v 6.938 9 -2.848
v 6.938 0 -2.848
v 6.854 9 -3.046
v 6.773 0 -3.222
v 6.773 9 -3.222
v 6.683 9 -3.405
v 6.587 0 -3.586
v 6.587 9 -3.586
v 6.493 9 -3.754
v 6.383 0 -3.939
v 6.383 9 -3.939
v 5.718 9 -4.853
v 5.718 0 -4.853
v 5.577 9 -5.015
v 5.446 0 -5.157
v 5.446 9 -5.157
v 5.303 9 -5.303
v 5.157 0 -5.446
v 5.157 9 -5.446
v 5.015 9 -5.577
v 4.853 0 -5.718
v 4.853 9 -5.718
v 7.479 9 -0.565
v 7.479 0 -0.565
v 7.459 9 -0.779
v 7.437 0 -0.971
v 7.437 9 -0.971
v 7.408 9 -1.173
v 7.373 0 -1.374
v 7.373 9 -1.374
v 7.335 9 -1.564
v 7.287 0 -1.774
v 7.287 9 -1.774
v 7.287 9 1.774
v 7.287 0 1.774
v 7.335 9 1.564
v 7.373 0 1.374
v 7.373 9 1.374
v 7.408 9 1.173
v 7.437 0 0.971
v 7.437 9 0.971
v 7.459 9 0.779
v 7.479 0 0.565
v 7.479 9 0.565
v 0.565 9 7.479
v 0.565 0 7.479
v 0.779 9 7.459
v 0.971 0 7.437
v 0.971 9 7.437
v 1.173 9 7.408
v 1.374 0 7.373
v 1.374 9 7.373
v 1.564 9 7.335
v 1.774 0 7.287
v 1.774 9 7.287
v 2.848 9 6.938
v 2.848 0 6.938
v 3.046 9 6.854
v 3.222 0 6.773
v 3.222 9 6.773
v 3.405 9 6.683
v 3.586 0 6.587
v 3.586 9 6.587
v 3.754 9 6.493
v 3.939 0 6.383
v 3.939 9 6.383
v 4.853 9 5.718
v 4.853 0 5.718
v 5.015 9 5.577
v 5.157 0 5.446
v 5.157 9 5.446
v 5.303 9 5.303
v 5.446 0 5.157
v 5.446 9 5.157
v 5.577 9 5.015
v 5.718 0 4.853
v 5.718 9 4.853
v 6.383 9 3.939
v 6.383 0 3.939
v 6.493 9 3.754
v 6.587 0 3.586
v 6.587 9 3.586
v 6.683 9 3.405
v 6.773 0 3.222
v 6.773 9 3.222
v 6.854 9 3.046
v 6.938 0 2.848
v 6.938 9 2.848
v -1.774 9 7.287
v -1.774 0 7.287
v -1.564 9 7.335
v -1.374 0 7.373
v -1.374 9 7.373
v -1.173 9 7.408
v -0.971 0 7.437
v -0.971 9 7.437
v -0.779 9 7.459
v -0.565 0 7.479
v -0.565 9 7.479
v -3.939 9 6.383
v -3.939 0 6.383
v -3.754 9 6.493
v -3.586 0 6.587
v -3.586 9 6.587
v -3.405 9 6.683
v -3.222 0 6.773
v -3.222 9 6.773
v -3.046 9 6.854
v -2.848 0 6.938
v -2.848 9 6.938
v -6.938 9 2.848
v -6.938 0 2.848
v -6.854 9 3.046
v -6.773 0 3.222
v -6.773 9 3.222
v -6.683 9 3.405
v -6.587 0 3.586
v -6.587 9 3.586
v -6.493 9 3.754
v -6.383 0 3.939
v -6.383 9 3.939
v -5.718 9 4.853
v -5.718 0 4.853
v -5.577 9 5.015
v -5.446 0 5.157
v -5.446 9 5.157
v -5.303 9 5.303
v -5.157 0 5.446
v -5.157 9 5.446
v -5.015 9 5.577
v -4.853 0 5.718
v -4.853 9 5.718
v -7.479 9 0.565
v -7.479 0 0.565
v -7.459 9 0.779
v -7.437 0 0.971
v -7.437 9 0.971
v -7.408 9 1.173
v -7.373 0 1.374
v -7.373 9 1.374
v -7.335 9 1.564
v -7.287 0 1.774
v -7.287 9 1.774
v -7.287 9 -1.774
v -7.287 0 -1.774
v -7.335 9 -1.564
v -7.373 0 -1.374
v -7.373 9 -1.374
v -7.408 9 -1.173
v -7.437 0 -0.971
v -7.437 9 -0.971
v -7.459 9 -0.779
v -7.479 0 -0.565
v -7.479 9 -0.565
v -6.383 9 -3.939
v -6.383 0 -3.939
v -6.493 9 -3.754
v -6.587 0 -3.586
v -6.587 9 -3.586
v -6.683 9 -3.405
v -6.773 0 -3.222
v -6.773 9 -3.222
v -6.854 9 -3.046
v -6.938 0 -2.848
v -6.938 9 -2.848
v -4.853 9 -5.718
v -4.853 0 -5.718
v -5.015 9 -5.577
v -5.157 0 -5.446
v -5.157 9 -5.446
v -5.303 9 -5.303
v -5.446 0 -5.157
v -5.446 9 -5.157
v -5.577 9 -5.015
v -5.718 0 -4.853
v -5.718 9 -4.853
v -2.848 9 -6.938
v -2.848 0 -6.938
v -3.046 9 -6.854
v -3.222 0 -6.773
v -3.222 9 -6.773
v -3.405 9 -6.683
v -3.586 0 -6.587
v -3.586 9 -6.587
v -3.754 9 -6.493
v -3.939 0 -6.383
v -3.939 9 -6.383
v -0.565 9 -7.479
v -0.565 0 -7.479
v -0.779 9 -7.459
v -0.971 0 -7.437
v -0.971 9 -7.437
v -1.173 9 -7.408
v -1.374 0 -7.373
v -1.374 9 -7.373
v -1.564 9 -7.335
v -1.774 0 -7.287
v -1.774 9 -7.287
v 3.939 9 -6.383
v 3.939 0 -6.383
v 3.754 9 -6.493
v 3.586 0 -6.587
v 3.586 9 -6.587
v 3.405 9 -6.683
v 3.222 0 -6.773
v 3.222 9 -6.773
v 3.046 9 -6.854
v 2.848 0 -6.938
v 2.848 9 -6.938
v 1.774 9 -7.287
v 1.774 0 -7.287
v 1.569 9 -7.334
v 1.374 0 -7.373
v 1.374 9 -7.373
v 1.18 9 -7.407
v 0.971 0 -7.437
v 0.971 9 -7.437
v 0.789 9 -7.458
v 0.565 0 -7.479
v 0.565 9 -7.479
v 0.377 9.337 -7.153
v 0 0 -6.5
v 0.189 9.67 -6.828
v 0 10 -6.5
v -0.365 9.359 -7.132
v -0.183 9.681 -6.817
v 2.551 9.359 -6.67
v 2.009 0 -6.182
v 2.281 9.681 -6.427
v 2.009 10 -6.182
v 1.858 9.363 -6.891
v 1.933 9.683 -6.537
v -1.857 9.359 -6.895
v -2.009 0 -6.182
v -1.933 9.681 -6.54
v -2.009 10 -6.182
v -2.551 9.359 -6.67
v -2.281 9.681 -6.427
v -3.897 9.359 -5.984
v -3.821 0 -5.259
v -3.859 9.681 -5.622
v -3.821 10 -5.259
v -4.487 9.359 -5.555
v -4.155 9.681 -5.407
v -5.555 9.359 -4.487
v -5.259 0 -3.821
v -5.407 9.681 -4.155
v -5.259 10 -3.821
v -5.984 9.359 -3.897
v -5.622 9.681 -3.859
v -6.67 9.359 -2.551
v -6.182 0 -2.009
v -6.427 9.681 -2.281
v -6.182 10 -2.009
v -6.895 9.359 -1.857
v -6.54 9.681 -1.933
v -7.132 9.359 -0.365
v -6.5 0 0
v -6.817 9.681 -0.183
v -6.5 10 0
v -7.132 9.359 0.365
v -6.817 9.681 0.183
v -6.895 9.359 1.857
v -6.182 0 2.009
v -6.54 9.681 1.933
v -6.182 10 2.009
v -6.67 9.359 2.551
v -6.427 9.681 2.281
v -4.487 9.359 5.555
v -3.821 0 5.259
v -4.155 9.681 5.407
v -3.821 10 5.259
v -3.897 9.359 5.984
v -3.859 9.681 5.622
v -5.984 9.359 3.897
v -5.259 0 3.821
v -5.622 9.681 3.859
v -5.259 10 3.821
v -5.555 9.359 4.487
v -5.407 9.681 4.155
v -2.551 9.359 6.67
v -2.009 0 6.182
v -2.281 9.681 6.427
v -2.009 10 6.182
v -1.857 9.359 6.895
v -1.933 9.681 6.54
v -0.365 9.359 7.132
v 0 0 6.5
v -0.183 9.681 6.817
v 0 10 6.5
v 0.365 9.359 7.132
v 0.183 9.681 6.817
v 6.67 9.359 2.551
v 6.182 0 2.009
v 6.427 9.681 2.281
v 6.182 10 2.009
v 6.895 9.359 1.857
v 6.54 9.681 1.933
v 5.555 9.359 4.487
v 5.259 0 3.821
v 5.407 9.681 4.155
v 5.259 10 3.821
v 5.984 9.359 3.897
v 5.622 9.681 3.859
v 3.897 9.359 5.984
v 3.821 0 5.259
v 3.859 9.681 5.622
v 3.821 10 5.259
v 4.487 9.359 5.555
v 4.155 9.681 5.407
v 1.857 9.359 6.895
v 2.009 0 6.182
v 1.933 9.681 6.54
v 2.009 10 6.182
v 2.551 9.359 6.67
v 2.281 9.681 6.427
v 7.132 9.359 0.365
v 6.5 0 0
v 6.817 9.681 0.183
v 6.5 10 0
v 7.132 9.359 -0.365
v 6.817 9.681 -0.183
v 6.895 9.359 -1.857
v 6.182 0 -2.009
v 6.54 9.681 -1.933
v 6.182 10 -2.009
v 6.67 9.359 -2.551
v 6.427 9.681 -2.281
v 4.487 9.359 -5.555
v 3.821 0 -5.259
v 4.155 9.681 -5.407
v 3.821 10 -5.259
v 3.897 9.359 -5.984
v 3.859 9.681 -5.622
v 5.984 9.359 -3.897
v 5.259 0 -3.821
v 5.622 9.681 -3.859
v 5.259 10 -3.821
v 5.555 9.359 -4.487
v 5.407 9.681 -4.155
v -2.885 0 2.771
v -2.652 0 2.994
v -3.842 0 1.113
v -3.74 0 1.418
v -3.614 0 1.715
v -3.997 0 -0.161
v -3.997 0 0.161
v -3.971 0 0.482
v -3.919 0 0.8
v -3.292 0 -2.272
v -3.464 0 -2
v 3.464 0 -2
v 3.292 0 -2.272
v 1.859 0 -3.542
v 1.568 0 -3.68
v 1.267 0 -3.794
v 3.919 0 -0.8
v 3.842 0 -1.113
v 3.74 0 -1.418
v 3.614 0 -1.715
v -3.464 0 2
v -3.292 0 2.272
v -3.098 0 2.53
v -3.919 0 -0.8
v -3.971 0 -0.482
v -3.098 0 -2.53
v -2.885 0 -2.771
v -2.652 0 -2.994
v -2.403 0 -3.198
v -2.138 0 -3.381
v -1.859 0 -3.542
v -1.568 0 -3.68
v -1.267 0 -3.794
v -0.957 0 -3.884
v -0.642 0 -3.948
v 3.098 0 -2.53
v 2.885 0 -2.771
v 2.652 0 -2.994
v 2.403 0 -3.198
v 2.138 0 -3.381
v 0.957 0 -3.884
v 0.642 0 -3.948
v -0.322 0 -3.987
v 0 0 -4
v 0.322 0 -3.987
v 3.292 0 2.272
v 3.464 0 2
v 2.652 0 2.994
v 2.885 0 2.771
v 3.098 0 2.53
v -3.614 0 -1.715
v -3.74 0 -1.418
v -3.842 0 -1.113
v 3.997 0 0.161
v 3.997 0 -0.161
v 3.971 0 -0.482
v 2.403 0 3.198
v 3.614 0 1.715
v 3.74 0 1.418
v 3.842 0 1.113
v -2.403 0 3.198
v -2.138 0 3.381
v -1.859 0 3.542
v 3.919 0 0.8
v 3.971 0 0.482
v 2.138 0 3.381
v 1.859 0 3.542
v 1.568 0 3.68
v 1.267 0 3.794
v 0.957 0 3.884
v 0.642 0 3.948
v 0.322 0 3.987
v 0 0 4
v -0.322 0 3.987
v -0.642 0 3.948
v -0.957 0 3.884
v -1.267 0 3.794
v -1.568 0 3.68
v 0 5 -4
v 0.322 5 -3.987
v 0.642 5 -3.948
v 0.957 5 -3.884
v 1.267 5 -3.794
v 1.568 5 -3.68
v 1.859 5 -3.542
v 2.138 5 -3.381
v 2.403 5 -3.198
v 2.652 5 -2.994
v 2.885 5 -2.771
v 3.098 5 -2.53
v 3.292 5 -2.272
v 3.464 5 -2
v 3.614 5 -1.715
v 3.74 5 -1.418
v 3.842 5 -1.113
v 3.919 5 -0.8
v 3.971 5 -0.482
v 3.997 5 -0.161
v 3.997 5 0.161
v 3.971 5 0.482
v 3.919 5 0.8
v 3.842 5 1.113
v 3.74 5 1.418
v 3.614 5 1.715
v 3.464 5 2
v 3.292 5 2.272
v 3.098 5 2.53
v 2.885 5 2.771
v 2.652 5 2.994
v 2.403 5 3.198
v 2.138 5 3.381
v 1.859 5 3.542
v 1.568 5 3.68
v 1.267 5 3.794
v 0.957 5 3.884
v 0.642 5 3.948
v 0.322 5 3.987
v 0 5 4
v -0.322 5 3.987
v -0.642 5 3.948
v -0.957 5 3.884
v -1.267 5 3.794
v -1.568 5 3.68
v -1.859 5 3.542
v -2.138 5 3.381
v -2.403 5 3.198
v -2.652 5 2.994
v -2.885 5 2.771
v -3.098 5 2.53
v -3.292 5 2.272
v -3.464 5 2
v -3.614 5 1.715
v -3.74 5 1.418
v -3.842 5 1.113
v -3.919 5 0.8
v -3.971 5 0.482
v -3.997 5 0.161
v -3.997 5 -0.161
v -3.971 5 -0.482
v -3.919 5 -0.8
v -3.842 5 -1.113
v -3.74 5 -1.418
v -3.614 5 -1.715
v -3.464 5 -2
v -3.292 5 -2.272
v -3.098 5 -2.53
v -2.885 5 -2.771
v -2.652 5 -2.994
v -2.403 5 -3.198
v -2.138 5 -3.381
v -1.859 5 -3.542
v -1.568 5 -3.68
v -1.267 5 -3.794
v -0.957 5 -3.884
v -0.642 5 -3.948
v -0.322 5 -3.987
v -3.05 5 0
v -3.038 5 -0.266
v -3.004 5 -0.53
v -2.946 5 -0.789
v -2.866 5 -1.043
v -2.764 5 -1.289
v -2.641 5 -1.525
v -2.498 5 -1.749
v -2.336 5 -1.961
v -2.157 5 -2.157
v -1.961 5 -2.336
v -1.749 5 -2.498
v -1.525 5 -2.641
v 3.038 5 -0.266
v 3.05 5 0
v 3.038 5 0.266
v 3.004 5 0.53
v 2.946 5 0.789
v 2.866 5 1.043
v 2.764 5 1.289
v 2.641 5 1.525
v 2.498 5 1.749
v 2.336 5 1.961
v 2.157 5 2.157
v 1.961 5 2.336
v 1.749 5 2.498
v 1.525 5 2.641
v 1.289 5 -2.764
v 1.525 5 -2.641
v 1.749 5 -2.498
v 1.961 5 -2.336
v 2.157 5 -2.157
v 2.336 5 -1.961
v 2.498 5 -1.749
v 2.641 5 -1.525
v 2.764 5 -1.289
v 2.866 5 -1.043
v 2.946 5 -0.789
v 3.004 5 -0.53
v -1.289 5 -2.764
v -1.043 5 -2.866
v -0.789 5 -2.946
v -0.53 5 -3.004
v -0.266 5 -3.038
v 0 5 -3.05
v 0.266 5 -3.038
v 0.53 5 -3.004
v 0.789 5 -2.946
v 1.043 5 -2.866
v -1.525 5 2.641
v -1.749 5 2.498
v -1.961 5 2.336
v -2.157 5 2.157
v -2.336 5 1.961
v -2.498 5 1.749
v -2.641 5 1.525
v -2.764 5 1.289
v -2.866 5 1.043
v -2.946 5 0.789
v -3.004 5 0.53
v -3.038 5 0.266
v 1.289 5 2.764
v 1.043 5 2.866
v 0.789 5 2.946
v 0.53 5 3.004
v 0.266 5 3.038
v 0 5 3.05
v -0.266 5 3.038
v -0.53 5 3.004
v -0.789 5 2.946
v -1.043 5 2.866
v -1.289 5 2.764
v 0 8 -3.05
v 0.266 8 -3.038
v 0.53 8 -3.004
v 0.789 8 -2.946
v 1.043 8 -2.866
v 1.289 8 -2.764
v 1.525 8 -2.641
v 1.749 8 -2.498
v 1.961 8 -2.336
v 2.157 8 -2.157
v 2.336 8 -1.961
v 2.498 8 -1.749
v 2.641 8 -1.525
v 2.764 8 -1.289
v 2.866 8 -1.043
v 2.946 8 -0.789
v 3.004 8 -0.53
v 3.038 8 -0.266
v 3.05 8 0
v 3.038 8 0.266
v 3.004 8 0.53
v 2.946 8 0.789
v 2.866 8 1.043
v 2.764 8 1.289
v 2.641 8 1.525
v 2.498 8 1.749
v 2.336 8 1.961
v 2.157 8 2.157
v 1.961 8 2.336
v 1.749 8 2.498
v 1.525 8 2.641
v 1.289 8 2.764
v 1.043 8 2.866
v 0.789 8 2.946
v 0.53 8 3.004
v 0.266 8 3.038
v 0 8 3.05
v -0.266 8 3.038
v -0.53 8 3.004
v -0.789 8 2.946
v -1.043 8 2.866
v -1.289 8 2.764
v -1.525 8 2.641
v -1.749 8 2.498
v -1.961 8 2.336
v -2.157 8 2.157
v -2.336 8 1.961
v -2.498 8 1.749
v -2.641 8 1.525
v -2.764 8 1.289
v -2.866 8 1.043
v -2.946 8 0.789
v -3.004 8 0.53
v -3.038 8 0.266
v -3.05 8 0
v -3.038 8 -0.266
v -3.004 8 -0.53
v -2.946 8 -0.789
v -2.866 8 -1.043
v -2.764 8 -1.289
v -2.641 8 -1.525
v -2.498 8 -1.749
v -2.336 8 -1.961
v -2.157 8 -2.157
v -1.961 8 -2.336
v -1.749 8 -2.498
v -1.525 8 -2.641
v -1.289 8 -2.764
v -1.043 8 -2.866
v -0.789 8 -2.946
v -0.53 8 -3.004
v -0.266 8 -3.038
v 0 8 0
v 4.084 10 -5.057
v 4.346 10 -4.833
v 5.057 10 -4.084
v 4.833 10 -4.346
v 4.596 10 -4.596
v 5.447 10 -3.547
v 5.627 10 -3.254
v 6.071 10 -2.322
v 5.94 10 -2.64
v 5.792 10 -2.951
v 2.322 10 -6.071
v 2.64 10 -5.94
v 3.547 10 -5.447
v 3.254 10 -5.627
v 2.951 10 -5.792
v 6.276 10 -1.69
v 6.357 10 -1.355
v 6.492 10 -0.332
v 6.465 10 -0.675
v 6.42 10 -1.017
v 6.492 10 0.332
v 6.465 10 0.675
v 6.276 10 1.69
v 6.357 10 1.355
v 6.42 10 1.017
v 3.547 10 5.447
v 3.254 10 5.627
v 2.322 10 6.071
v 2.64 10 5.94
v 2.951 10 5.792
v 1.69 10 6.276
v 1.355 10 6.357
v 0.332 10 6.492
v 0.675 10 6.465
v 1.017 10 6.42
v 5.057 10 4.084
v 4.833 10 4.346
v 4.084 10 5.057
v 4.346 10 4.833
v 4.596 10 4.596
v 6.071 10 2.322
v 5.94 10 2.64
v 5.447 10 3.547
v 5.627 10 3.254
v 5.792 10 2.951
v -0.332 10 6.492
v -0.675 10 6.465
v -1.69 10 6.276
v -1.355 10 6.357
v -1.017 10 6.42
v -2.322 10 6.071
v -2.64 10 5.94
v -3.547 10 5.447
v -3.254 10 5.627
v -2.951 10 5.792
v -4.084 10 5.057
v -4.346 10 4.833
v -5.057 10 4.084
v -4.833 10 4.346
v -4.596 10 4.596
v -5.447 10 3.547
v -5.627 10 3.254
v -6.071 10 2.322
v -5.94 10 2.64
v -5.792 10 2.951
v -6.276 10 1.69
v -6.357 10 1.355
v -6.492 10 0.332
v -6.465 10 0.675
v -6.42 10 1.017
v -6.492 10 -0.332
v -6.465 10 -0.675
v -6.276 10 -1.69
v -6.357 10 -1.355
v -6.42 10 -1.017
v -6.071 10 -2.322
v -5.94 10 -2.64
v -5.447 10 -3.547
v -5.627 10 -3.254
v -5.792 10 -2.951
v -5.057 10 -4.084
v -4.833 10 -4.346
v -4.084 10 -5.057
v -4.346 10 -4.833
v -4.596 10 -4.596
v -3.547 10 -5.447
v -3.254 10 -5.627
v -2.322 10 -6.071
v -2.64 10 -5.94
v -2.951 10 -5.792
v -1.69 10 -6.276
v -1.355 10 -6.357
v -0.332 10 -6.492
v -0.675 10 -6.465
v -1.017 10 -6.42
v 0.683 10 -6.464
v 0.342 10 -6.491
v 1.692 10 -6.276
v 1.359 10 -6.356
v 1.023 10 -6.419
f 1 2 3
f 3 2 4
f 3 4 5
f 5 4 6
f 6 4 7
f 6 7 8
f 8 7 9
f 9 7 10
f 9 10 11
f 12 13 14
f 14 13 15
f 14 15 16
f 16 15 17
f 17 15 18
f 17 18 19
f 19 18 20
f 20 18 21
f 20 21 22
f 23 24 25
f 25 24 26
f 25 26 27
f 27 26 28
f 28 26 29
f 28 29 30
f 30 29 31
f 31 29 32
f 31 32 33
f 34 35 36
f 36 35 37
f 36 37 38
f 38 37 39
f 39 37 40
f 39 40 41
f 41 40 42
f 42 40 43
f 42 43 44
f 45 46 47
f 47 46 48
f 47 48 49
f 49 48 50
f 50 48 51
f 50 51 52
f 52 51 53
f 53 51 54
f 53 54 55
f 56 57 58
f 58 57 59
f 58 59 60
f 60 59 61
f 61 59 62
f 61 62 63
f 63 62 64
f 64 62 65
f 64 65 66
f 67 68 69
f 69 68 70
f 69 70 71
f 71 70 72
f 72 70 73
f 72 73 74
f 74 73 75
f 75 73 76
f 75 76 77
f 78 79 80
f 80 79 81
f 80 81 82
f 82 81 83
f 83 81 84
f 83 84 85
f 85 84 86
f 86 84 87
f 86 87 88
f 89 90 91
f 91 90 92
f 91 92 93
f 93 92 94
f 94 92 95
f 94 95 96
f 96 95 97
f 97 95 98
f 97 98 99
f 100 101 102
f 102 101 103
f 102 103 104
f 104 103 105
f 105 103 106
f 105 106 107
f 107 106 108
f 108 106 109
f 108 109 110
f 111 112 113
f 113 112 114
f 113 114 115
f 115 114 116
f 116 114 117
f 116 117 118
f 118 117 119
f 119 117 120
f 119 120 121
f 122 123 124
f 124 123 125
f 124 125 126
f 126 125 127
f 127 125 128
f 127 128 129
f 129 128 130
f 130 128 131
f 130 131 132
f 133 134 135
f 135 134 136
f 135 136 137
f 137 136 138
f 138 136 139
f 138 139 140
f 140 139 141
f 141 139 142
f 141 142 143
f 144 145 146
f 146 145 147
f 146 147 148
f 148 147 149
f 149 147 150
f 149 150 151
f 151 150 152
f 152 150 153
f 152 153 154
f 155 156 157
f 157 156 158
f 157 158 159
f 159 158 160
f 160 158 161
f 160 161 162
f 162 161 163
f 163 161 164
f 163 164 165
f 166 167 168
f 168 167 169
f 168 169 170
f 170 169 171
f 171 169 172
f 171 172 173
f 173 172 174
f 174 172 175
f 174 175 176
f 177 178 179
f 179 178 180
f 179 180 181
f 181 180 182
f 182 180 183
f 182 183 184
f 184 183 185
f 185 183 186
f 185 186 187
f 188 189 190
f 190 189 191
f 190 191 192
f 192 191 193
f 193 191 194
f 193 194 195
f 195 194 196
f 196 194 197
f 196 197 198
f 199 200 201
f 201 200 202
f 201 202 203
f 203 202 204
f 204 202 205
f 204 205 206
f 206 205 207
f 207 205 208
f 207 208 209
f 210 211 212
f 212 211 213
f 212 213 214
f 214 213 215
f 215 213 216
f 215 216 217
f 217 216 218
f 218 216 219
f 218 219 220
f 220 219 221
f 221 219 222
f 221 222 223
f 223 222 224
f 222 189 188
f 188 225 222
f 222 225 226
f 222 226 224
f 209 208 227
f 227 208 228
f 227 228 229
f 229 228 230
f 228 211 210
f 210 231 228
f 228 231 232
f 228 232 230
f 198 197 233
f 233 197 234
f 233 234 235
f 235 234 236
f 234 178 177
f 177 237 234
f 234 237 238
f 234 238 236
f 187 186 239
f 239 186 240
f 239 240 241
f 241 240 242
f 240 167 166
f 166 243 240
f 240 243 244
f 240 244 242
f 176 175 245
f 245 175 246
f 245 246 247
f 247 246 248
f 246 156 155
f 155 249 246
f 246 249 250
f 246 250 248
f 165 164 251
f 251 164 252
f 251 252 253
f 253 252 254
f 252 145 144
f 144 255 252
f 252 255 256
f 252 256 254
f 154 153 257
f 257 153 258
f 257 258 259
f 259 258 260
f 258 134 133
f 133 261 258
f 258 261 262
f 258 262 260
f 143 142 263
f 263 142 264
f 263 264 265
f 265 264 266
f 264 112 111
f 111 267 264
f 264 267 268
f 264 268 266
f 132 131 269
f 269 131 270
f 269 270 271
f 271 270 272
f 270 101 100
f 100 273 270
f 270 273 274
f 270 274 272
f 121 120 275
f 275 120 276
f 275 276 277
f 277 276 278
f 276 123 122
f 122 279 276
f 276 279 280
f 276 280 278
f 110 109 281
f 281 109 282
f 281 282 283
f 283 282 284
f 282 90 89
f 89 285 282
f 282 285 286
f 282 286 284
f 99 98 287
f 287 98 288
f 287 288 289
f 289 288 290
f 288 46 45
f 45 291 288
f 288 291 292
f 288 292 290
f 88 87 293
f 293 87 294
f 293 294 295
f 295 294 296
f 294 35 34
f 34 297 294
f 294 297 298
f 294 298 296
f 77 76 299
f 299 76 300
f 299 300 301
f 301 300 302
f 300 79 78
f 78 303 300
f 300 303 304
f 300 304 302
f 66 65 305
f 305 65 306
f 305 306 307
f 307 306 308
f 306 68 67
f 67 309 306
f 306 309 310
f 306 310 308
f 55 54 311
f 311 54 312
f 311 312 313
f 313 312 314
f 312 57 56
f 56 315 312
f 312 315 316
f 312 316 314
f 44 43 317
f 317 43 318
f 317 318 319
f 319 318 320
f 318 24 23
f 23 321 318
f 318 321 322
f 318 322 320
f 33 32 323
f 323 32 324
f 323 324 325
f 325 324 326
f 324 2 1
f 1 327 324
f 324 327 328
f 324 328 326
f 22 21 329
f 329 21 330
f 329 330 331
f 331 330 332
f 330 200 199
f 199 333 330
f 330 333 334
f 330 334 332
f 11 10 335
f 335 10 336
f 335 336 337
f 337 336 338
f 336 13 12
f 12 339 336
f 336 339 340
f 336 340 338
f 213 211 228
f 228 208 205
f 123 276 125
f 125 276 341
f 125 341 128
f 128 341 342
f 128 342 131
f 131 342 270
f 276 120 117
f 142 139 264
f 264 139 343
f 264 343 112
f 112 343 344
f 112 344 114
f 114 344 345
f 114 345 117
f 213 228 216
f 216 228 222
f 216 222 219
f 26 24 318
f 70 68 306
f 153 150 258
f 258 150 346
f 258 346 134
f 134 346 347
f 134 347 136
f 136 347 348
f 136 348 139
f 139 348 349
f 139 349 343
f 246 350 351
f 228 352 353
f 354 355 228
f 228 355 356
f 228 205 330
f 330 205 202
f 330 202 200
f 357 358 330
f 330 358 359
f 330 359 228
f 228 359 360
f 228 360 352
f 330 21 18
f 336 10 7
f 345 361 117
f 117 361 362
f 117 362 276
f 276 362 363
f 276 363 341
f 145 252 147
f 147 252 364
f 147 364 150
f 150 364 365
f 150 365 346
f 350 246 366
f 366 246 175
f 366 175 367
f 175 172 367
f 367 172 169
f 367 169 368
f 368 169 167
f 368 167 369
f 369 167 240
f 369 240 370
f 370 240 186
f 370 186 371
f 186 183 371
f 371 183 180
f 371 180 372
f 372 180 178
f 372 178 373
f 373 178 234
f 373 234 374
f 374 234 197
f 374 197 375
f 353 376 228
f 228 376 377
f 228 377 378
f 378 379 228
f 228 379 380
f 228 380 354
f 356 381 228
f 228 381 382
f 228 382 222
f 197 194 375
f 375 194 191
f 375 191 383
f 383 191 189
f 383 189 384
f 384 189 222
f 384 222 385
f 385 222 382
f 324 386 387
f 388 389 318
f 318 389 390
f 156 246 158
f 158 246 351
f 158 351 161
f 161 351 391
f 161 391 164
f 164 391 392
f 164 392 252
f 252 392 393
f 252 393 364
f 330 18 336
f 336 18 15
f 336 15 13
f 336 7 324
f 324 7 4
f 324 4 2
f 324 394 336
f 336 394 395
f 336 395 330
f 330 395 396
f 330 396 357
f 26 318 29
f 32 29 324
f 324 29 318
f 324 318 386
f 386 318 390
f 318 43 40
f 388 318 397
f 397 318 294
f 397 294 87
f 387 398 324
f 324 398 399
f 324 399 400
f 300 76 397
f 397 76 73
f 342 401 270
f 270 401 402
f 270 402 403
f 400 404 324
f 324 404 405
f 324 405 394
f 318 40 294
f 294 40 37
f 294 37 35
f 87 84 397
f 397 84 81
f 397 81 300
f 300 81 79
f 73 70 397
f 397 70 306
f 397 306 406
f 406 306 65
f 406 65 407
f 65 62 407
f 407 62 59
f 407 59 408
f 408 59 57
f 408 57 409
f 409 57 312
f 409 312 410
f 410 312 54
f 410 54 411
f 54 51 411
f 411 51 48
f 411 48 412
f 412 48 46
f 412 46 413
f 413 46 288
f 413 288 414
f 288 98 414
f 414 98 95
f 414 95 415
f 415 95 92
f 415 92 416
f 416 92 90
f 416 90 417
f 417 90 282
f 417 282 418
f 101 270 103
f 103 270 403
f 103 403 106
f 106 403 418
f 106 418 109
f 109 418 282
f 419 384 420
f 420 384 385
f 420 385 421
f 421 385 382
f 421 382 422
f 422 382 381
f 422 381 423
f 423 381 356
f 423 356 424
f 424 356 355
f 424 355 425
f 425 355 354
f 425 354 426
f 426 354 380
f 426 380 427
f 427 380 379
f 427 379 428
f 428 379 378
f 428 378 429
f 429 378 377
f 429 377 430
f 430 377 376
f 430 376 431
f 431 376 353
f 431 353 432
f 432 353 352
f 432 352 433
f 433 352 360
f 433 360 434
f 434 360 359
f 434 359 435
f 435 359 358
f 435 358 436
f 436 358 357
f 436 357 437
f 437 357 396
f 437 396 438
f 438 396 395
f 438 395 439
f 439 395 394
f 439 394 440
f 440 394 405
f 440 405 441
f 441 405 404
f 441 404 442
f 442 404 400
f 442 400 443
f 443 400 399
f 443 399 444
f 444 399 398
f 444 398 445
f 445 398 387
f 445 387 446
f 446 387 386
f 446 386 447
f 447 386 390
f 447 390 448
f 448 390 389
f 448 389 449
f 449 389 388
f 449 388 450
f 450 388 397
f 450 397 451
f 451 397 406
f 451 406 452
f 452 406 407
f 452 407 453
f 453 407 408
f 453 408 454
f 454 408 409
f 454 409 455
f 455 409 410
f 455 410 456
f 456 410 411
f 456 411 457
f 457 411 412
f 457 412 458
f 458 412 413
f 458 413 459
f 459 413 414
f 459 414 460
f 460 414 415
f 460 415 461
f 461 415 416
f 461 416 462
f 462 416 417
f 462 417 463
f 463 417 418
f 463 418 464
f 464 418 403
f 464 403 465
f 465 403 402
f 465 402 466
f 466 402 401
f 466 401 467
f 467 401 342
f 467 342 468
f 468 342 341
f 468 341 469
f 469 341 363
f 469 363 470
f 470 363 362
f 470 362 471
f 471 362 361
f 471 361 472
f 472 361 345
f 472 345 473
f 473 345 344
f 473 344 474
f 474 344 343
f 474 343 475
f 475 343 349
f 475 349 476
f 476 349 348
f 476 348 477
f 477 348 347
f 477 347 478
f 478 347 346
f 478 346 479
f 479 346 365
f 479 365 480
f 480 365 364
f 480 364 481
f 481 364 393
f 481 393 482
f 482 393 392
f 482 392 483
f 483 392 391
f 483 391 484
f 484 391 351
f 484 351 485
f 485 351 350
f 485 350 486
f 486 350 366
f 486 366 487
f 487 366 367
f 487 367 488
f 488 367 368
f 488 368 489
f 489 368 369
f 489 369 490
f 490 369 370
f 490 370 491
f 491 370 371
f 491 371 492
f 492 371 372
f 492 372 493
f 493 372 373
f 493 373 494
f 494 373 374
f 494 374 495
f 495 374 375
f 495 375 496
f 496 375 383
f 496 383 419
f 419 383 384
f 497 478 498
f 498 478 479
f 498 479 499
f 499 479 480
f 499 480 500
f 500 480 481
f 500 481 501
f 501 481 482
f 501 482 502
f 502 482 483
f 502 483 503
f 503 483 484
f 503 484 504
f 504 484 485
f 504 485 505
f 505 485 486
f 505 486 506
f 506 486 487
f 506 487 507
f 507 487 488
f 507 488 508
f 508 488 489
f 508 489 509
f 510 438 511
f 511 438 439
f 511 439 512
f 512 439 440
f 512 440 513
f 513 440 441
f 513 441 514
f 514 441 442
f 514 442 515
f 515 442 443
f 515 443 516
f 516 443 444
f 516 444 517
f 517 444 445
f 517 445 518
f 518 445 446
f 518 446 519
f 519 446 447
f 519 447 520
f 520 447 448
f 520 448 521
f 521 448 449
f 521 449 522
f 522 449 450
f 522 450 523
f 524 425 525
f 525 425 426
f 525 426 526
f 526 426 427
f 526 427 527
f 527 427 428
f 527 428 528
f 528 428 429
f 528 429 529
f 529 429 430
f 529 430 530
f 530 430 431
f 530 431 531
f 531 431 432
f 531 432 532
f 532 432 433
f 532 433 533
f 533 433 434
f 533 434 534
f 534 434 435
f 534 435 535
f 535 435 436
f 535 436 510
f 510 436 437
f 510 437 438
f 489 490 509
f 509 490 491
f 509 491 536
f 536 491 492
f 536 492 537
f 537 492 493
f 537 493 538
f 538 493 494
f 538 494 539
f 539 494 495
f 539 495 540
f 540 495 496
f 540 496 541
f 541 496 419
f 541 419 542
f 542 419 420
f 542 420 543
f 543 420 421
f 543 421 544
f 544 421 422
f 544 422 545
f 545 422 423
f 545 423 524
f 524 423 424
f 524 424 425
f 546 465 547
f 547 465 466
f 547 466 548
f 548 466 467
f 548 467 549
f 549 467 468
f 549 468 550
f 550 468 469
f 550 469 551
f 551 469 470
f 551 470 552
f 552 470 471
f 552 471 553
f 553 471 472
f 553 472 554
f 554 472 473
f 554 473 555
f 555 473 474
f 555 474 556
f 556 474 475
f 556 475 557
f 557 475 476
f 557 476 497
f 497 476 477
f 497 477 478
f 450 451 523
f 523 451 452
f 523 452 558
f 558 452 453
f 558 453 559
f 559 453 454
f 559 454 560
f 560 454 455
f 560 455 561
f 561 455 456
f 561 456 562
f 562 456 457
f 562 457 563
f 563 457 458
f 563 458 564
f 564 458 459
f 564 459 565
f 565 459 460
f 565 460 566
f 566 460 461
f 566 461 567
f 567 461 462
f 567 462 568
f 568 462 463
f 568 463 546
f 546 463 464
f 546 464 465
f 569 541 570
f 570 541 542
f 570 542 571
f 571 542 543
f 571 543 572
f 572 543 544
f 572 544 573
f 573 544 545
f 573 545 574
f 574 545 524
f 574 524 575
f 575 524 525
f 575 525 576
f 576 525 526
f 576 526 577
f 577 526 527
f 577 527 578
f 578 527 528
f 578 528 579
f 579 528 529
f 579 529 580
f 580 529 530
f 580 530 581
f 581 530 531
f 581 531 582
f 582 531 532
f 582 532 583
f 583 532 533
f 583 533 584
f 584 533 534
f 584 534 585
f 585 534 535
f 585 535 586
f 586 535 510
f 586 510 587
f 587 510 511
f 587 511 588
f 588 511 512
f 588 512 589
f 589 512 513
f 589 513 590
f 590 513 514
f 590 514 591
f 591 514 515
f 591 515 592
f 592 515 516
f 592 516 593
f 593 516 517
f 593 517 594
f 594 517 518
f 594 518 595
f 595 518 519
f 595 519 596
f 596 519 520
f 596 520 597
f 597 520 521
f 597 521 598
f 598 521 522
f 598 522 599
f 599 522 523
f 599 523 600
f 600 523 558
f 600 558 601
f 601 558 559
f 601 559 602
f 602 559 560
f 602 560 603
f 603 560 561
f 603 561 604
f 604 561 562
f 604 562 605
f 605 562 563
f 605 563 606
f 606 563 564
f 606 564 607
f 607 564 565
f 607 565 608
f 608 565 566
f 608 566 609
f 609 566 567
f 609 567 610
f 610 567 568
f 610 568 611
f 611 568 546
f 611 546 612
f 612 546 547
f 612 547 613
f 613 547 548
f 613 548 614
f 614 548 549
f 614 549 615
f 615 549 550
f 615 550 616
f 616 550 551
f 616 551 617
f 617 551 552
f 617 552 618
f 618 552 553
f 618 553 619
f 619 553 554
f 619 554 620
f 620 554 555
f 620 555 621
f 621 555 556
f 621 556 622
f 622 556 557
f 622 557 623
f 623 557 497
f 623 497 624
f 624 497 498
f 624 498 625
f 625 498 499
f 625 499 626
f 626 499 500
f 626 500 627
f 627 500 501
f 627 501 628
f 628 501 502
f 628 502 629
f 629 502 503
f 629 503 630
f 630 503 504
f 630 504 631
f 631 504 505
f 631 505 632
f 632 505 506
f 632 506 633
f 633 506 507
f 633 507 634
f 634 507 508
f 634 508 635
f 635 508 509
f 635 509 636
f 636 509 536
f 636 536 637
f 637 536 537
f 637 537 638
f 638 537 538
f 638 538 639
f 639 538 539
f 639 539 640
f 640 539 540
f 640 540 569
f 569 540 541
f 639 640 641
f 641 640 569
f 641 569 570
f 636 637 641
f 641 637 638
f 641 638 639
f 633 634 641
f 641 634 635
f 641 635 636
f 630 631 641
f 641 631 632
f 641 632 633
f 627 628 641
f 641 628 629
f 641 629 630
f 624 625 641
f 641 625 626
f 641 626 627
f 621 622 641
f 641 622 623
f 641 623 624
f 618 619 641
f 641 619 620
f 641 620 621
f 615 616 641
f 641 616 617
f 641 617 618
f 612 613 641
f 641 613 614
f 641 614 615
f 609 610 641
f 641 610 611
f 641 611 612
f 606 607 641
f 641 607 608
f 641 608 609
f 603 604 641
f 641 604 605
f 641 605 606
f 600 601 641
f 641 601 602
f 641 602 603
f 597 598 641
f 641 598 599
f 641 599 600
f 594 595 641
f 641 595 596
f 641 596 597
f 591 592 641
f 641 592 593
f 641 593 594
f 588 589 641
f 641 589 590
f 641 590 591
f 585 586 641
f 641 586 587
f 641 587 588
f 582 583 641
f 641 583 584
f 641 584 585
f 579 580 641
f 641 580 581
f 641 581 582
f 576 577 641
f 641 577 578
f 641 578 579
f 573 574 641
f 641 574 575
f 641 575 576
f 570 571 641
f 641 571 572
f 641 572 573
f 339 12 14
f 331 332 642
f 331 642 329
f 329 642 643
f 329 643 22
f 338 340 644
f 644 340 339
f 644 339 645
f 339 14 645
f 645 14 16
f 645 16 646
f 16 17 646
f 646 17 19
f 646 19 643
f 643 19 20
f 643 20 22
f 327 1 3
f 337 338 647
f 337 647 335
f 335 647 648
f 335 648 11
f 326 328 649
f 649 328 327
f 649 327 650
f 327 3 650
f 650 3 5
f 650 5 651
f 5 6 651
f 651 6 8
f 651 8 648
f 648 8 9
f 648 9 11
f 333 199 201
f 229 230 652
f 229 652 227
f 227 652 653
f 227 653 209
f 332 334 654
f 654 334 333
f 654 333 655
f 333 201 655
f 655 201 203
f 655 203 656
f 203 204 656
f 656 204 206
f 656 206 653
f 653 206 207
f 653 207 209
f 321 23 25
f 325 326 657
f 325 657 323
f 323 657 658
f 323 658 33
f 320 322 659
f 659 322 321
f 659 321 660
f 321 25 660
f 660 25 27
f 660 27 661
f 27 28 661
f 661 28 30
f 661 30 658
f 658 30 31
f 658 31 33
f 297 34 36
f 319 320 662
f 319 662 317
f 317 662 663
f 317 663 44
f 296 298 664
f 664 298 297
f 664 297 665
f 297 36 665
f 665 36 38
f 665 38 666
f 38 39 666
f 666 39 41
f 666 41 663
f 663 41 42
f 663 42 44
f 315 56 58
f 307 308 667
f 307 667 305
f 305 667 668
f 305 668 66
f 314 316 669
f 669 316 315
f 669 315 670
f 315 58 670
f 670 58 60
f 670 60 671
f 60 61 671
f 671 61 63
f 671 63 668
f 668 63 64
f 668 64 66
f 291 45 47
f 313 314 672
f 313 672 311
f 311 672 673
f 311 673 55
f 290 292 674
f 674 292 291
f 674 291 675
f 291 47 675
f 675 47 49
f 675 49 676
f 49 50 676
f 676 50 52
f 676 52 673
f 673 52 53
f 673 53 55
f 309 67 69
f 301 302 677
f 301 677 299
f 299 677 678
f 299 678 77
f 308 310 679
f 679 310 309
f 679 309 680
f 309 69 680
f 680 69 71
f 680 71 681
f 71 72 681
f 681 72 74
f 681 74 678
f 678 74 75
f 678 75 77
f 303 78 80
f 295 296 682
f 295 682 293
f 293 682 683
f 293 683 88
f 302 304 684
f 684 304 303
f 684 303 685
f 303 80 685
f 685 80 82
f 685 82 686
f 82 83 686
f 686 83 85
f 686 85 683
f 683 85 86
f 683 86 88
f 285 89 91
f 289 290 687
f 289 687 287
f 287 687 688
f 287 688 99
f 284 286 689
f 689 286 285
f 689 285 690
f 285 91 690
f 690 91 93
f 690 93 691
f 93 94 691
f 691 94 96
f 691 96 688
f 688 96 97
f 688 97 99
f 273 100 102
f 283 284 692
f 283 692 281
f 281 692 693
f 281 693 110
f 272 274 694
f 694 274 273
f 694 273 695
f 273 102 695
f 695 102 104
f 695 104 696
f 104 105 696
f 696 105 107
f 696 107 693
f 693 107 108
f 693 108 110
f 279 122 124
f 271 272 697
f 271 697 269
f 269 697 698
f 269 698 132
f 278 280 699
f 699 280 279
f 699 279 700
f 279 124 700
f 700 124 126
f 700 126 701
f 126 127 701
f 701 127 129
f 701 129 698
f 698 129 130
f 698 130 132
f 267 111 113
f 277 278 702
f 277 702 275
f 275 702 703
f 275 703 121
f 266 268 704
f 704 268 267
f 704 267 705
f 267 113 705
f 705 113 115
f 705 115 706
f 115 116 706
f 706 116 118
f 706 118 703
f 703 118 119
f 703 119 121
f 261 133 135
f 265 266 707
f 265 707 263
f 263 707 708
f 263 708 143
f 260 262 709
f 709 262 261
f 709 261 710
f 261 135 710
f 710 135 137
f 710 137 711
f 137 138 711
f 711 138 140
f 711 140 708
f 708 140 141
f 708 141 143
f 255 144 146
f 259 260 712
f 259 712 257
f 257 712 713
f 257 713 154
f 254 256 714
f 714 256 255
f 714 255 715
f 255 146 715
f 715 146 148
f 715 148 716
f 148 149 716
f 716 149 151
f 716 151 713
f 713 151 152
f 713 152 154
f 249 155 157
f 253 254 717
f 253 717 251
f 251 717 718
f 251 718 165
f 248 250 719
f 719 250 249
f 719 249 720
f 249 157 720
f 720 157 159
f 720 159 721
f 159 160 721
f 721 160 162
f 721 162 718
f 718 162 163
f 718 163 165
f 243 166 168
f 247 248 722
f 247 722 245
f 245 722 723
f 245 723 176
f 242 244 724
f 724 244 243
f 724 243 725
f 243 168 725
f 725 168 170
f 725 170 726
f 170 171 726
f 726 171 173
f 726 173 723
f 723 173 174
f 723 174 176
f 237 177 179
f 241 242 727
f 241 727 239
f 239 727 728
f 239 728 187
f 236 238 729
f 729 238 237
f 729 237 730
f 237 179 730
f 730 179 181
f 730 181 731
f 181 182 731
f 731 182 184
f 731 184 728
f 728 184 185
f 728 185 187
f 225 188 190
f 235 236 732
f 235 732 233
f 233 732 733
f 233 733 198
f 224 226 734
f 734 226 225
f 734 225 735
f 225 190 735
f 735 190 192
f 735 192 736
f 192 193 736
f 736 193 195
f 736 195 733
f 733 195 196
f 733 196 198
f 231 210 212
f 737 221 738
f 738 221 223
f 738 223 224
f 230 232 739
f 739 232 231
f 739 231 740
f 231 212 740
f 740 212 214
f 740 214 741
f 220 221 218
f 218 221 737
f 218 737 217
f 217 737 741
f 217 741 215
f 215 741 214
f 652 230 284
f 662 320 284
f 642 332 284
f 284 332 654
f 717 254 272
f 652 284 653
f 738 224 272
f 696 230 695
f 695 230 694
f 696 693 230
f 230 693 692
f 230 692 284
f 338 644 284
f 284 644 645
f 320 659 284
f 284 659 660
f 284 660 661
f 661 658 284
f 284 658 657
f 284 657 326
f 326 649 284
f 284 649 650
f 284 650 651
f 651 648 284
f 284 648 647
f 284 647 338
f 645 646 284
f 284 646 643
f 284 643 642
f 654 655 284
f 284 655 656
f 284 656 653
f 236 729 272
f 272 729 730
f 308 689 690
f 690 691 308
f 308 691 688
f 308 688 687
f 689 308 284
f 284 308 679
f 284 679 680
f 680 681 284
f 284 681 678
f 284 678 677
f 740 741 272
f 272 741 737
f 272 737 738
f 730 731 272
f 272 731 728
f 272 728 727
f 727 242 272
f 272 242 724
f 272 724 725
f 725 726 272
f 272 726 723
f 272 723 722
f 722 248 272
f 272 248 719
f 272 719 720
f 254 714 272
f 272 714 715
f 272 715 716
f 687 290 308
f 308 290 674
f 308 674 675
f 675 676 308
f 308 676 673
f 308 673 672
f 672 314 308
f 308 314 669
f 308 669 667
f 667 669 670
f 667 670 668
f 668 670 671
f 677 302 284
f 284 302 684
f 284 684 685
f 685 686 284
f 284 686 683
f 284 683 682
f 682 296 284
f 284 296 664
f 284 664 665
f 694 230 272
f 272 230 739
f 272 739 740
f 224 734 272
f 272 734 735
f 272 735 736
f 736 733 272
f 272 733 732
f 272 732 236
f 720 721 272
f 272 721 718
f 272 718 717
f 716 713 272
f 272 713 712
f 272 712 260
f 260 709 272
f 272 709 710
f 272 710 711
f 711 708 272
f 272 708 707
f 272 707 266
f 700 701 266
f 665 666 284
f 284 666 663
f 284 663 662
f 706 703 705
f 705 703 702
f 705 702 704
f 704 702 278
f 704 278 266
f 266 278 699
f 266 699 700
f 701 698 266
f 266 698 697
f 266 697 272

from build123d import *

# Parameters (mm, degrees)
CUT_EXTRUDE1_DEPTH = 10
CIRPATTERN1_COUNT  = 20


with BuildPart() as part:
    # Sketch1 → Revolve1 (revolve)
    with BuildSketch(Plane.XY, mode=Mode.PRIVATE) as revolve1_sk:
        Polygon((0, 8), (0, 10), (7.5, 10), (7.5, 0), (4, 0), (4, 5), (3.05, 5), (3.05, 8), align=None)
    revolve(revolve1_sk.sketch.rotate(Axis((0, 0, 0), (0, 1, 0)), 90), axis=Axis((0, 0, 0), (0, 1, 0)))

    # Sketch2 → Cut-Extrude1 (cut)
    with BuildSketch(Plane(origin=(0, 10, 0), x_dir=(1, 0, 0), z_dir=(0, 1, 0))):
        Polygon((0, 8.5), (1.154700538, 8.5), (0, 6.5), (-1.154700538, 8.5), align=None)
    cut_extrude1 = extrude(amount=-CUT_EXTRUDE1_DEPTH, mode=Mode.SUBTRACT)

    # CirPattern1: Cut-Extrude1 ×20 about axis
    cirpattern1_axis = Axis((0, 0, 0), (0, 1, 0))
    for i in range(1, CIRPATTERN1_COUNT):
        add(cut_extrude1.rotate(cirpattern1_axis, i * 360 / CIRPATTERN1_COUNT), mode=Mode.SUBTRACT)

    # Sketch3 → Cut-Revolve1 (revolve, cut)
    with BuildSketch(Plane.XY):
        Polygon((-8, 8.5), (-6, 10.5), (-8, 10.5), align=None)
    revolve(axis=Axis((0, 0, 0), (0, 1, 0)), mode=Mode.SUBTRACT)


solid = part.part
